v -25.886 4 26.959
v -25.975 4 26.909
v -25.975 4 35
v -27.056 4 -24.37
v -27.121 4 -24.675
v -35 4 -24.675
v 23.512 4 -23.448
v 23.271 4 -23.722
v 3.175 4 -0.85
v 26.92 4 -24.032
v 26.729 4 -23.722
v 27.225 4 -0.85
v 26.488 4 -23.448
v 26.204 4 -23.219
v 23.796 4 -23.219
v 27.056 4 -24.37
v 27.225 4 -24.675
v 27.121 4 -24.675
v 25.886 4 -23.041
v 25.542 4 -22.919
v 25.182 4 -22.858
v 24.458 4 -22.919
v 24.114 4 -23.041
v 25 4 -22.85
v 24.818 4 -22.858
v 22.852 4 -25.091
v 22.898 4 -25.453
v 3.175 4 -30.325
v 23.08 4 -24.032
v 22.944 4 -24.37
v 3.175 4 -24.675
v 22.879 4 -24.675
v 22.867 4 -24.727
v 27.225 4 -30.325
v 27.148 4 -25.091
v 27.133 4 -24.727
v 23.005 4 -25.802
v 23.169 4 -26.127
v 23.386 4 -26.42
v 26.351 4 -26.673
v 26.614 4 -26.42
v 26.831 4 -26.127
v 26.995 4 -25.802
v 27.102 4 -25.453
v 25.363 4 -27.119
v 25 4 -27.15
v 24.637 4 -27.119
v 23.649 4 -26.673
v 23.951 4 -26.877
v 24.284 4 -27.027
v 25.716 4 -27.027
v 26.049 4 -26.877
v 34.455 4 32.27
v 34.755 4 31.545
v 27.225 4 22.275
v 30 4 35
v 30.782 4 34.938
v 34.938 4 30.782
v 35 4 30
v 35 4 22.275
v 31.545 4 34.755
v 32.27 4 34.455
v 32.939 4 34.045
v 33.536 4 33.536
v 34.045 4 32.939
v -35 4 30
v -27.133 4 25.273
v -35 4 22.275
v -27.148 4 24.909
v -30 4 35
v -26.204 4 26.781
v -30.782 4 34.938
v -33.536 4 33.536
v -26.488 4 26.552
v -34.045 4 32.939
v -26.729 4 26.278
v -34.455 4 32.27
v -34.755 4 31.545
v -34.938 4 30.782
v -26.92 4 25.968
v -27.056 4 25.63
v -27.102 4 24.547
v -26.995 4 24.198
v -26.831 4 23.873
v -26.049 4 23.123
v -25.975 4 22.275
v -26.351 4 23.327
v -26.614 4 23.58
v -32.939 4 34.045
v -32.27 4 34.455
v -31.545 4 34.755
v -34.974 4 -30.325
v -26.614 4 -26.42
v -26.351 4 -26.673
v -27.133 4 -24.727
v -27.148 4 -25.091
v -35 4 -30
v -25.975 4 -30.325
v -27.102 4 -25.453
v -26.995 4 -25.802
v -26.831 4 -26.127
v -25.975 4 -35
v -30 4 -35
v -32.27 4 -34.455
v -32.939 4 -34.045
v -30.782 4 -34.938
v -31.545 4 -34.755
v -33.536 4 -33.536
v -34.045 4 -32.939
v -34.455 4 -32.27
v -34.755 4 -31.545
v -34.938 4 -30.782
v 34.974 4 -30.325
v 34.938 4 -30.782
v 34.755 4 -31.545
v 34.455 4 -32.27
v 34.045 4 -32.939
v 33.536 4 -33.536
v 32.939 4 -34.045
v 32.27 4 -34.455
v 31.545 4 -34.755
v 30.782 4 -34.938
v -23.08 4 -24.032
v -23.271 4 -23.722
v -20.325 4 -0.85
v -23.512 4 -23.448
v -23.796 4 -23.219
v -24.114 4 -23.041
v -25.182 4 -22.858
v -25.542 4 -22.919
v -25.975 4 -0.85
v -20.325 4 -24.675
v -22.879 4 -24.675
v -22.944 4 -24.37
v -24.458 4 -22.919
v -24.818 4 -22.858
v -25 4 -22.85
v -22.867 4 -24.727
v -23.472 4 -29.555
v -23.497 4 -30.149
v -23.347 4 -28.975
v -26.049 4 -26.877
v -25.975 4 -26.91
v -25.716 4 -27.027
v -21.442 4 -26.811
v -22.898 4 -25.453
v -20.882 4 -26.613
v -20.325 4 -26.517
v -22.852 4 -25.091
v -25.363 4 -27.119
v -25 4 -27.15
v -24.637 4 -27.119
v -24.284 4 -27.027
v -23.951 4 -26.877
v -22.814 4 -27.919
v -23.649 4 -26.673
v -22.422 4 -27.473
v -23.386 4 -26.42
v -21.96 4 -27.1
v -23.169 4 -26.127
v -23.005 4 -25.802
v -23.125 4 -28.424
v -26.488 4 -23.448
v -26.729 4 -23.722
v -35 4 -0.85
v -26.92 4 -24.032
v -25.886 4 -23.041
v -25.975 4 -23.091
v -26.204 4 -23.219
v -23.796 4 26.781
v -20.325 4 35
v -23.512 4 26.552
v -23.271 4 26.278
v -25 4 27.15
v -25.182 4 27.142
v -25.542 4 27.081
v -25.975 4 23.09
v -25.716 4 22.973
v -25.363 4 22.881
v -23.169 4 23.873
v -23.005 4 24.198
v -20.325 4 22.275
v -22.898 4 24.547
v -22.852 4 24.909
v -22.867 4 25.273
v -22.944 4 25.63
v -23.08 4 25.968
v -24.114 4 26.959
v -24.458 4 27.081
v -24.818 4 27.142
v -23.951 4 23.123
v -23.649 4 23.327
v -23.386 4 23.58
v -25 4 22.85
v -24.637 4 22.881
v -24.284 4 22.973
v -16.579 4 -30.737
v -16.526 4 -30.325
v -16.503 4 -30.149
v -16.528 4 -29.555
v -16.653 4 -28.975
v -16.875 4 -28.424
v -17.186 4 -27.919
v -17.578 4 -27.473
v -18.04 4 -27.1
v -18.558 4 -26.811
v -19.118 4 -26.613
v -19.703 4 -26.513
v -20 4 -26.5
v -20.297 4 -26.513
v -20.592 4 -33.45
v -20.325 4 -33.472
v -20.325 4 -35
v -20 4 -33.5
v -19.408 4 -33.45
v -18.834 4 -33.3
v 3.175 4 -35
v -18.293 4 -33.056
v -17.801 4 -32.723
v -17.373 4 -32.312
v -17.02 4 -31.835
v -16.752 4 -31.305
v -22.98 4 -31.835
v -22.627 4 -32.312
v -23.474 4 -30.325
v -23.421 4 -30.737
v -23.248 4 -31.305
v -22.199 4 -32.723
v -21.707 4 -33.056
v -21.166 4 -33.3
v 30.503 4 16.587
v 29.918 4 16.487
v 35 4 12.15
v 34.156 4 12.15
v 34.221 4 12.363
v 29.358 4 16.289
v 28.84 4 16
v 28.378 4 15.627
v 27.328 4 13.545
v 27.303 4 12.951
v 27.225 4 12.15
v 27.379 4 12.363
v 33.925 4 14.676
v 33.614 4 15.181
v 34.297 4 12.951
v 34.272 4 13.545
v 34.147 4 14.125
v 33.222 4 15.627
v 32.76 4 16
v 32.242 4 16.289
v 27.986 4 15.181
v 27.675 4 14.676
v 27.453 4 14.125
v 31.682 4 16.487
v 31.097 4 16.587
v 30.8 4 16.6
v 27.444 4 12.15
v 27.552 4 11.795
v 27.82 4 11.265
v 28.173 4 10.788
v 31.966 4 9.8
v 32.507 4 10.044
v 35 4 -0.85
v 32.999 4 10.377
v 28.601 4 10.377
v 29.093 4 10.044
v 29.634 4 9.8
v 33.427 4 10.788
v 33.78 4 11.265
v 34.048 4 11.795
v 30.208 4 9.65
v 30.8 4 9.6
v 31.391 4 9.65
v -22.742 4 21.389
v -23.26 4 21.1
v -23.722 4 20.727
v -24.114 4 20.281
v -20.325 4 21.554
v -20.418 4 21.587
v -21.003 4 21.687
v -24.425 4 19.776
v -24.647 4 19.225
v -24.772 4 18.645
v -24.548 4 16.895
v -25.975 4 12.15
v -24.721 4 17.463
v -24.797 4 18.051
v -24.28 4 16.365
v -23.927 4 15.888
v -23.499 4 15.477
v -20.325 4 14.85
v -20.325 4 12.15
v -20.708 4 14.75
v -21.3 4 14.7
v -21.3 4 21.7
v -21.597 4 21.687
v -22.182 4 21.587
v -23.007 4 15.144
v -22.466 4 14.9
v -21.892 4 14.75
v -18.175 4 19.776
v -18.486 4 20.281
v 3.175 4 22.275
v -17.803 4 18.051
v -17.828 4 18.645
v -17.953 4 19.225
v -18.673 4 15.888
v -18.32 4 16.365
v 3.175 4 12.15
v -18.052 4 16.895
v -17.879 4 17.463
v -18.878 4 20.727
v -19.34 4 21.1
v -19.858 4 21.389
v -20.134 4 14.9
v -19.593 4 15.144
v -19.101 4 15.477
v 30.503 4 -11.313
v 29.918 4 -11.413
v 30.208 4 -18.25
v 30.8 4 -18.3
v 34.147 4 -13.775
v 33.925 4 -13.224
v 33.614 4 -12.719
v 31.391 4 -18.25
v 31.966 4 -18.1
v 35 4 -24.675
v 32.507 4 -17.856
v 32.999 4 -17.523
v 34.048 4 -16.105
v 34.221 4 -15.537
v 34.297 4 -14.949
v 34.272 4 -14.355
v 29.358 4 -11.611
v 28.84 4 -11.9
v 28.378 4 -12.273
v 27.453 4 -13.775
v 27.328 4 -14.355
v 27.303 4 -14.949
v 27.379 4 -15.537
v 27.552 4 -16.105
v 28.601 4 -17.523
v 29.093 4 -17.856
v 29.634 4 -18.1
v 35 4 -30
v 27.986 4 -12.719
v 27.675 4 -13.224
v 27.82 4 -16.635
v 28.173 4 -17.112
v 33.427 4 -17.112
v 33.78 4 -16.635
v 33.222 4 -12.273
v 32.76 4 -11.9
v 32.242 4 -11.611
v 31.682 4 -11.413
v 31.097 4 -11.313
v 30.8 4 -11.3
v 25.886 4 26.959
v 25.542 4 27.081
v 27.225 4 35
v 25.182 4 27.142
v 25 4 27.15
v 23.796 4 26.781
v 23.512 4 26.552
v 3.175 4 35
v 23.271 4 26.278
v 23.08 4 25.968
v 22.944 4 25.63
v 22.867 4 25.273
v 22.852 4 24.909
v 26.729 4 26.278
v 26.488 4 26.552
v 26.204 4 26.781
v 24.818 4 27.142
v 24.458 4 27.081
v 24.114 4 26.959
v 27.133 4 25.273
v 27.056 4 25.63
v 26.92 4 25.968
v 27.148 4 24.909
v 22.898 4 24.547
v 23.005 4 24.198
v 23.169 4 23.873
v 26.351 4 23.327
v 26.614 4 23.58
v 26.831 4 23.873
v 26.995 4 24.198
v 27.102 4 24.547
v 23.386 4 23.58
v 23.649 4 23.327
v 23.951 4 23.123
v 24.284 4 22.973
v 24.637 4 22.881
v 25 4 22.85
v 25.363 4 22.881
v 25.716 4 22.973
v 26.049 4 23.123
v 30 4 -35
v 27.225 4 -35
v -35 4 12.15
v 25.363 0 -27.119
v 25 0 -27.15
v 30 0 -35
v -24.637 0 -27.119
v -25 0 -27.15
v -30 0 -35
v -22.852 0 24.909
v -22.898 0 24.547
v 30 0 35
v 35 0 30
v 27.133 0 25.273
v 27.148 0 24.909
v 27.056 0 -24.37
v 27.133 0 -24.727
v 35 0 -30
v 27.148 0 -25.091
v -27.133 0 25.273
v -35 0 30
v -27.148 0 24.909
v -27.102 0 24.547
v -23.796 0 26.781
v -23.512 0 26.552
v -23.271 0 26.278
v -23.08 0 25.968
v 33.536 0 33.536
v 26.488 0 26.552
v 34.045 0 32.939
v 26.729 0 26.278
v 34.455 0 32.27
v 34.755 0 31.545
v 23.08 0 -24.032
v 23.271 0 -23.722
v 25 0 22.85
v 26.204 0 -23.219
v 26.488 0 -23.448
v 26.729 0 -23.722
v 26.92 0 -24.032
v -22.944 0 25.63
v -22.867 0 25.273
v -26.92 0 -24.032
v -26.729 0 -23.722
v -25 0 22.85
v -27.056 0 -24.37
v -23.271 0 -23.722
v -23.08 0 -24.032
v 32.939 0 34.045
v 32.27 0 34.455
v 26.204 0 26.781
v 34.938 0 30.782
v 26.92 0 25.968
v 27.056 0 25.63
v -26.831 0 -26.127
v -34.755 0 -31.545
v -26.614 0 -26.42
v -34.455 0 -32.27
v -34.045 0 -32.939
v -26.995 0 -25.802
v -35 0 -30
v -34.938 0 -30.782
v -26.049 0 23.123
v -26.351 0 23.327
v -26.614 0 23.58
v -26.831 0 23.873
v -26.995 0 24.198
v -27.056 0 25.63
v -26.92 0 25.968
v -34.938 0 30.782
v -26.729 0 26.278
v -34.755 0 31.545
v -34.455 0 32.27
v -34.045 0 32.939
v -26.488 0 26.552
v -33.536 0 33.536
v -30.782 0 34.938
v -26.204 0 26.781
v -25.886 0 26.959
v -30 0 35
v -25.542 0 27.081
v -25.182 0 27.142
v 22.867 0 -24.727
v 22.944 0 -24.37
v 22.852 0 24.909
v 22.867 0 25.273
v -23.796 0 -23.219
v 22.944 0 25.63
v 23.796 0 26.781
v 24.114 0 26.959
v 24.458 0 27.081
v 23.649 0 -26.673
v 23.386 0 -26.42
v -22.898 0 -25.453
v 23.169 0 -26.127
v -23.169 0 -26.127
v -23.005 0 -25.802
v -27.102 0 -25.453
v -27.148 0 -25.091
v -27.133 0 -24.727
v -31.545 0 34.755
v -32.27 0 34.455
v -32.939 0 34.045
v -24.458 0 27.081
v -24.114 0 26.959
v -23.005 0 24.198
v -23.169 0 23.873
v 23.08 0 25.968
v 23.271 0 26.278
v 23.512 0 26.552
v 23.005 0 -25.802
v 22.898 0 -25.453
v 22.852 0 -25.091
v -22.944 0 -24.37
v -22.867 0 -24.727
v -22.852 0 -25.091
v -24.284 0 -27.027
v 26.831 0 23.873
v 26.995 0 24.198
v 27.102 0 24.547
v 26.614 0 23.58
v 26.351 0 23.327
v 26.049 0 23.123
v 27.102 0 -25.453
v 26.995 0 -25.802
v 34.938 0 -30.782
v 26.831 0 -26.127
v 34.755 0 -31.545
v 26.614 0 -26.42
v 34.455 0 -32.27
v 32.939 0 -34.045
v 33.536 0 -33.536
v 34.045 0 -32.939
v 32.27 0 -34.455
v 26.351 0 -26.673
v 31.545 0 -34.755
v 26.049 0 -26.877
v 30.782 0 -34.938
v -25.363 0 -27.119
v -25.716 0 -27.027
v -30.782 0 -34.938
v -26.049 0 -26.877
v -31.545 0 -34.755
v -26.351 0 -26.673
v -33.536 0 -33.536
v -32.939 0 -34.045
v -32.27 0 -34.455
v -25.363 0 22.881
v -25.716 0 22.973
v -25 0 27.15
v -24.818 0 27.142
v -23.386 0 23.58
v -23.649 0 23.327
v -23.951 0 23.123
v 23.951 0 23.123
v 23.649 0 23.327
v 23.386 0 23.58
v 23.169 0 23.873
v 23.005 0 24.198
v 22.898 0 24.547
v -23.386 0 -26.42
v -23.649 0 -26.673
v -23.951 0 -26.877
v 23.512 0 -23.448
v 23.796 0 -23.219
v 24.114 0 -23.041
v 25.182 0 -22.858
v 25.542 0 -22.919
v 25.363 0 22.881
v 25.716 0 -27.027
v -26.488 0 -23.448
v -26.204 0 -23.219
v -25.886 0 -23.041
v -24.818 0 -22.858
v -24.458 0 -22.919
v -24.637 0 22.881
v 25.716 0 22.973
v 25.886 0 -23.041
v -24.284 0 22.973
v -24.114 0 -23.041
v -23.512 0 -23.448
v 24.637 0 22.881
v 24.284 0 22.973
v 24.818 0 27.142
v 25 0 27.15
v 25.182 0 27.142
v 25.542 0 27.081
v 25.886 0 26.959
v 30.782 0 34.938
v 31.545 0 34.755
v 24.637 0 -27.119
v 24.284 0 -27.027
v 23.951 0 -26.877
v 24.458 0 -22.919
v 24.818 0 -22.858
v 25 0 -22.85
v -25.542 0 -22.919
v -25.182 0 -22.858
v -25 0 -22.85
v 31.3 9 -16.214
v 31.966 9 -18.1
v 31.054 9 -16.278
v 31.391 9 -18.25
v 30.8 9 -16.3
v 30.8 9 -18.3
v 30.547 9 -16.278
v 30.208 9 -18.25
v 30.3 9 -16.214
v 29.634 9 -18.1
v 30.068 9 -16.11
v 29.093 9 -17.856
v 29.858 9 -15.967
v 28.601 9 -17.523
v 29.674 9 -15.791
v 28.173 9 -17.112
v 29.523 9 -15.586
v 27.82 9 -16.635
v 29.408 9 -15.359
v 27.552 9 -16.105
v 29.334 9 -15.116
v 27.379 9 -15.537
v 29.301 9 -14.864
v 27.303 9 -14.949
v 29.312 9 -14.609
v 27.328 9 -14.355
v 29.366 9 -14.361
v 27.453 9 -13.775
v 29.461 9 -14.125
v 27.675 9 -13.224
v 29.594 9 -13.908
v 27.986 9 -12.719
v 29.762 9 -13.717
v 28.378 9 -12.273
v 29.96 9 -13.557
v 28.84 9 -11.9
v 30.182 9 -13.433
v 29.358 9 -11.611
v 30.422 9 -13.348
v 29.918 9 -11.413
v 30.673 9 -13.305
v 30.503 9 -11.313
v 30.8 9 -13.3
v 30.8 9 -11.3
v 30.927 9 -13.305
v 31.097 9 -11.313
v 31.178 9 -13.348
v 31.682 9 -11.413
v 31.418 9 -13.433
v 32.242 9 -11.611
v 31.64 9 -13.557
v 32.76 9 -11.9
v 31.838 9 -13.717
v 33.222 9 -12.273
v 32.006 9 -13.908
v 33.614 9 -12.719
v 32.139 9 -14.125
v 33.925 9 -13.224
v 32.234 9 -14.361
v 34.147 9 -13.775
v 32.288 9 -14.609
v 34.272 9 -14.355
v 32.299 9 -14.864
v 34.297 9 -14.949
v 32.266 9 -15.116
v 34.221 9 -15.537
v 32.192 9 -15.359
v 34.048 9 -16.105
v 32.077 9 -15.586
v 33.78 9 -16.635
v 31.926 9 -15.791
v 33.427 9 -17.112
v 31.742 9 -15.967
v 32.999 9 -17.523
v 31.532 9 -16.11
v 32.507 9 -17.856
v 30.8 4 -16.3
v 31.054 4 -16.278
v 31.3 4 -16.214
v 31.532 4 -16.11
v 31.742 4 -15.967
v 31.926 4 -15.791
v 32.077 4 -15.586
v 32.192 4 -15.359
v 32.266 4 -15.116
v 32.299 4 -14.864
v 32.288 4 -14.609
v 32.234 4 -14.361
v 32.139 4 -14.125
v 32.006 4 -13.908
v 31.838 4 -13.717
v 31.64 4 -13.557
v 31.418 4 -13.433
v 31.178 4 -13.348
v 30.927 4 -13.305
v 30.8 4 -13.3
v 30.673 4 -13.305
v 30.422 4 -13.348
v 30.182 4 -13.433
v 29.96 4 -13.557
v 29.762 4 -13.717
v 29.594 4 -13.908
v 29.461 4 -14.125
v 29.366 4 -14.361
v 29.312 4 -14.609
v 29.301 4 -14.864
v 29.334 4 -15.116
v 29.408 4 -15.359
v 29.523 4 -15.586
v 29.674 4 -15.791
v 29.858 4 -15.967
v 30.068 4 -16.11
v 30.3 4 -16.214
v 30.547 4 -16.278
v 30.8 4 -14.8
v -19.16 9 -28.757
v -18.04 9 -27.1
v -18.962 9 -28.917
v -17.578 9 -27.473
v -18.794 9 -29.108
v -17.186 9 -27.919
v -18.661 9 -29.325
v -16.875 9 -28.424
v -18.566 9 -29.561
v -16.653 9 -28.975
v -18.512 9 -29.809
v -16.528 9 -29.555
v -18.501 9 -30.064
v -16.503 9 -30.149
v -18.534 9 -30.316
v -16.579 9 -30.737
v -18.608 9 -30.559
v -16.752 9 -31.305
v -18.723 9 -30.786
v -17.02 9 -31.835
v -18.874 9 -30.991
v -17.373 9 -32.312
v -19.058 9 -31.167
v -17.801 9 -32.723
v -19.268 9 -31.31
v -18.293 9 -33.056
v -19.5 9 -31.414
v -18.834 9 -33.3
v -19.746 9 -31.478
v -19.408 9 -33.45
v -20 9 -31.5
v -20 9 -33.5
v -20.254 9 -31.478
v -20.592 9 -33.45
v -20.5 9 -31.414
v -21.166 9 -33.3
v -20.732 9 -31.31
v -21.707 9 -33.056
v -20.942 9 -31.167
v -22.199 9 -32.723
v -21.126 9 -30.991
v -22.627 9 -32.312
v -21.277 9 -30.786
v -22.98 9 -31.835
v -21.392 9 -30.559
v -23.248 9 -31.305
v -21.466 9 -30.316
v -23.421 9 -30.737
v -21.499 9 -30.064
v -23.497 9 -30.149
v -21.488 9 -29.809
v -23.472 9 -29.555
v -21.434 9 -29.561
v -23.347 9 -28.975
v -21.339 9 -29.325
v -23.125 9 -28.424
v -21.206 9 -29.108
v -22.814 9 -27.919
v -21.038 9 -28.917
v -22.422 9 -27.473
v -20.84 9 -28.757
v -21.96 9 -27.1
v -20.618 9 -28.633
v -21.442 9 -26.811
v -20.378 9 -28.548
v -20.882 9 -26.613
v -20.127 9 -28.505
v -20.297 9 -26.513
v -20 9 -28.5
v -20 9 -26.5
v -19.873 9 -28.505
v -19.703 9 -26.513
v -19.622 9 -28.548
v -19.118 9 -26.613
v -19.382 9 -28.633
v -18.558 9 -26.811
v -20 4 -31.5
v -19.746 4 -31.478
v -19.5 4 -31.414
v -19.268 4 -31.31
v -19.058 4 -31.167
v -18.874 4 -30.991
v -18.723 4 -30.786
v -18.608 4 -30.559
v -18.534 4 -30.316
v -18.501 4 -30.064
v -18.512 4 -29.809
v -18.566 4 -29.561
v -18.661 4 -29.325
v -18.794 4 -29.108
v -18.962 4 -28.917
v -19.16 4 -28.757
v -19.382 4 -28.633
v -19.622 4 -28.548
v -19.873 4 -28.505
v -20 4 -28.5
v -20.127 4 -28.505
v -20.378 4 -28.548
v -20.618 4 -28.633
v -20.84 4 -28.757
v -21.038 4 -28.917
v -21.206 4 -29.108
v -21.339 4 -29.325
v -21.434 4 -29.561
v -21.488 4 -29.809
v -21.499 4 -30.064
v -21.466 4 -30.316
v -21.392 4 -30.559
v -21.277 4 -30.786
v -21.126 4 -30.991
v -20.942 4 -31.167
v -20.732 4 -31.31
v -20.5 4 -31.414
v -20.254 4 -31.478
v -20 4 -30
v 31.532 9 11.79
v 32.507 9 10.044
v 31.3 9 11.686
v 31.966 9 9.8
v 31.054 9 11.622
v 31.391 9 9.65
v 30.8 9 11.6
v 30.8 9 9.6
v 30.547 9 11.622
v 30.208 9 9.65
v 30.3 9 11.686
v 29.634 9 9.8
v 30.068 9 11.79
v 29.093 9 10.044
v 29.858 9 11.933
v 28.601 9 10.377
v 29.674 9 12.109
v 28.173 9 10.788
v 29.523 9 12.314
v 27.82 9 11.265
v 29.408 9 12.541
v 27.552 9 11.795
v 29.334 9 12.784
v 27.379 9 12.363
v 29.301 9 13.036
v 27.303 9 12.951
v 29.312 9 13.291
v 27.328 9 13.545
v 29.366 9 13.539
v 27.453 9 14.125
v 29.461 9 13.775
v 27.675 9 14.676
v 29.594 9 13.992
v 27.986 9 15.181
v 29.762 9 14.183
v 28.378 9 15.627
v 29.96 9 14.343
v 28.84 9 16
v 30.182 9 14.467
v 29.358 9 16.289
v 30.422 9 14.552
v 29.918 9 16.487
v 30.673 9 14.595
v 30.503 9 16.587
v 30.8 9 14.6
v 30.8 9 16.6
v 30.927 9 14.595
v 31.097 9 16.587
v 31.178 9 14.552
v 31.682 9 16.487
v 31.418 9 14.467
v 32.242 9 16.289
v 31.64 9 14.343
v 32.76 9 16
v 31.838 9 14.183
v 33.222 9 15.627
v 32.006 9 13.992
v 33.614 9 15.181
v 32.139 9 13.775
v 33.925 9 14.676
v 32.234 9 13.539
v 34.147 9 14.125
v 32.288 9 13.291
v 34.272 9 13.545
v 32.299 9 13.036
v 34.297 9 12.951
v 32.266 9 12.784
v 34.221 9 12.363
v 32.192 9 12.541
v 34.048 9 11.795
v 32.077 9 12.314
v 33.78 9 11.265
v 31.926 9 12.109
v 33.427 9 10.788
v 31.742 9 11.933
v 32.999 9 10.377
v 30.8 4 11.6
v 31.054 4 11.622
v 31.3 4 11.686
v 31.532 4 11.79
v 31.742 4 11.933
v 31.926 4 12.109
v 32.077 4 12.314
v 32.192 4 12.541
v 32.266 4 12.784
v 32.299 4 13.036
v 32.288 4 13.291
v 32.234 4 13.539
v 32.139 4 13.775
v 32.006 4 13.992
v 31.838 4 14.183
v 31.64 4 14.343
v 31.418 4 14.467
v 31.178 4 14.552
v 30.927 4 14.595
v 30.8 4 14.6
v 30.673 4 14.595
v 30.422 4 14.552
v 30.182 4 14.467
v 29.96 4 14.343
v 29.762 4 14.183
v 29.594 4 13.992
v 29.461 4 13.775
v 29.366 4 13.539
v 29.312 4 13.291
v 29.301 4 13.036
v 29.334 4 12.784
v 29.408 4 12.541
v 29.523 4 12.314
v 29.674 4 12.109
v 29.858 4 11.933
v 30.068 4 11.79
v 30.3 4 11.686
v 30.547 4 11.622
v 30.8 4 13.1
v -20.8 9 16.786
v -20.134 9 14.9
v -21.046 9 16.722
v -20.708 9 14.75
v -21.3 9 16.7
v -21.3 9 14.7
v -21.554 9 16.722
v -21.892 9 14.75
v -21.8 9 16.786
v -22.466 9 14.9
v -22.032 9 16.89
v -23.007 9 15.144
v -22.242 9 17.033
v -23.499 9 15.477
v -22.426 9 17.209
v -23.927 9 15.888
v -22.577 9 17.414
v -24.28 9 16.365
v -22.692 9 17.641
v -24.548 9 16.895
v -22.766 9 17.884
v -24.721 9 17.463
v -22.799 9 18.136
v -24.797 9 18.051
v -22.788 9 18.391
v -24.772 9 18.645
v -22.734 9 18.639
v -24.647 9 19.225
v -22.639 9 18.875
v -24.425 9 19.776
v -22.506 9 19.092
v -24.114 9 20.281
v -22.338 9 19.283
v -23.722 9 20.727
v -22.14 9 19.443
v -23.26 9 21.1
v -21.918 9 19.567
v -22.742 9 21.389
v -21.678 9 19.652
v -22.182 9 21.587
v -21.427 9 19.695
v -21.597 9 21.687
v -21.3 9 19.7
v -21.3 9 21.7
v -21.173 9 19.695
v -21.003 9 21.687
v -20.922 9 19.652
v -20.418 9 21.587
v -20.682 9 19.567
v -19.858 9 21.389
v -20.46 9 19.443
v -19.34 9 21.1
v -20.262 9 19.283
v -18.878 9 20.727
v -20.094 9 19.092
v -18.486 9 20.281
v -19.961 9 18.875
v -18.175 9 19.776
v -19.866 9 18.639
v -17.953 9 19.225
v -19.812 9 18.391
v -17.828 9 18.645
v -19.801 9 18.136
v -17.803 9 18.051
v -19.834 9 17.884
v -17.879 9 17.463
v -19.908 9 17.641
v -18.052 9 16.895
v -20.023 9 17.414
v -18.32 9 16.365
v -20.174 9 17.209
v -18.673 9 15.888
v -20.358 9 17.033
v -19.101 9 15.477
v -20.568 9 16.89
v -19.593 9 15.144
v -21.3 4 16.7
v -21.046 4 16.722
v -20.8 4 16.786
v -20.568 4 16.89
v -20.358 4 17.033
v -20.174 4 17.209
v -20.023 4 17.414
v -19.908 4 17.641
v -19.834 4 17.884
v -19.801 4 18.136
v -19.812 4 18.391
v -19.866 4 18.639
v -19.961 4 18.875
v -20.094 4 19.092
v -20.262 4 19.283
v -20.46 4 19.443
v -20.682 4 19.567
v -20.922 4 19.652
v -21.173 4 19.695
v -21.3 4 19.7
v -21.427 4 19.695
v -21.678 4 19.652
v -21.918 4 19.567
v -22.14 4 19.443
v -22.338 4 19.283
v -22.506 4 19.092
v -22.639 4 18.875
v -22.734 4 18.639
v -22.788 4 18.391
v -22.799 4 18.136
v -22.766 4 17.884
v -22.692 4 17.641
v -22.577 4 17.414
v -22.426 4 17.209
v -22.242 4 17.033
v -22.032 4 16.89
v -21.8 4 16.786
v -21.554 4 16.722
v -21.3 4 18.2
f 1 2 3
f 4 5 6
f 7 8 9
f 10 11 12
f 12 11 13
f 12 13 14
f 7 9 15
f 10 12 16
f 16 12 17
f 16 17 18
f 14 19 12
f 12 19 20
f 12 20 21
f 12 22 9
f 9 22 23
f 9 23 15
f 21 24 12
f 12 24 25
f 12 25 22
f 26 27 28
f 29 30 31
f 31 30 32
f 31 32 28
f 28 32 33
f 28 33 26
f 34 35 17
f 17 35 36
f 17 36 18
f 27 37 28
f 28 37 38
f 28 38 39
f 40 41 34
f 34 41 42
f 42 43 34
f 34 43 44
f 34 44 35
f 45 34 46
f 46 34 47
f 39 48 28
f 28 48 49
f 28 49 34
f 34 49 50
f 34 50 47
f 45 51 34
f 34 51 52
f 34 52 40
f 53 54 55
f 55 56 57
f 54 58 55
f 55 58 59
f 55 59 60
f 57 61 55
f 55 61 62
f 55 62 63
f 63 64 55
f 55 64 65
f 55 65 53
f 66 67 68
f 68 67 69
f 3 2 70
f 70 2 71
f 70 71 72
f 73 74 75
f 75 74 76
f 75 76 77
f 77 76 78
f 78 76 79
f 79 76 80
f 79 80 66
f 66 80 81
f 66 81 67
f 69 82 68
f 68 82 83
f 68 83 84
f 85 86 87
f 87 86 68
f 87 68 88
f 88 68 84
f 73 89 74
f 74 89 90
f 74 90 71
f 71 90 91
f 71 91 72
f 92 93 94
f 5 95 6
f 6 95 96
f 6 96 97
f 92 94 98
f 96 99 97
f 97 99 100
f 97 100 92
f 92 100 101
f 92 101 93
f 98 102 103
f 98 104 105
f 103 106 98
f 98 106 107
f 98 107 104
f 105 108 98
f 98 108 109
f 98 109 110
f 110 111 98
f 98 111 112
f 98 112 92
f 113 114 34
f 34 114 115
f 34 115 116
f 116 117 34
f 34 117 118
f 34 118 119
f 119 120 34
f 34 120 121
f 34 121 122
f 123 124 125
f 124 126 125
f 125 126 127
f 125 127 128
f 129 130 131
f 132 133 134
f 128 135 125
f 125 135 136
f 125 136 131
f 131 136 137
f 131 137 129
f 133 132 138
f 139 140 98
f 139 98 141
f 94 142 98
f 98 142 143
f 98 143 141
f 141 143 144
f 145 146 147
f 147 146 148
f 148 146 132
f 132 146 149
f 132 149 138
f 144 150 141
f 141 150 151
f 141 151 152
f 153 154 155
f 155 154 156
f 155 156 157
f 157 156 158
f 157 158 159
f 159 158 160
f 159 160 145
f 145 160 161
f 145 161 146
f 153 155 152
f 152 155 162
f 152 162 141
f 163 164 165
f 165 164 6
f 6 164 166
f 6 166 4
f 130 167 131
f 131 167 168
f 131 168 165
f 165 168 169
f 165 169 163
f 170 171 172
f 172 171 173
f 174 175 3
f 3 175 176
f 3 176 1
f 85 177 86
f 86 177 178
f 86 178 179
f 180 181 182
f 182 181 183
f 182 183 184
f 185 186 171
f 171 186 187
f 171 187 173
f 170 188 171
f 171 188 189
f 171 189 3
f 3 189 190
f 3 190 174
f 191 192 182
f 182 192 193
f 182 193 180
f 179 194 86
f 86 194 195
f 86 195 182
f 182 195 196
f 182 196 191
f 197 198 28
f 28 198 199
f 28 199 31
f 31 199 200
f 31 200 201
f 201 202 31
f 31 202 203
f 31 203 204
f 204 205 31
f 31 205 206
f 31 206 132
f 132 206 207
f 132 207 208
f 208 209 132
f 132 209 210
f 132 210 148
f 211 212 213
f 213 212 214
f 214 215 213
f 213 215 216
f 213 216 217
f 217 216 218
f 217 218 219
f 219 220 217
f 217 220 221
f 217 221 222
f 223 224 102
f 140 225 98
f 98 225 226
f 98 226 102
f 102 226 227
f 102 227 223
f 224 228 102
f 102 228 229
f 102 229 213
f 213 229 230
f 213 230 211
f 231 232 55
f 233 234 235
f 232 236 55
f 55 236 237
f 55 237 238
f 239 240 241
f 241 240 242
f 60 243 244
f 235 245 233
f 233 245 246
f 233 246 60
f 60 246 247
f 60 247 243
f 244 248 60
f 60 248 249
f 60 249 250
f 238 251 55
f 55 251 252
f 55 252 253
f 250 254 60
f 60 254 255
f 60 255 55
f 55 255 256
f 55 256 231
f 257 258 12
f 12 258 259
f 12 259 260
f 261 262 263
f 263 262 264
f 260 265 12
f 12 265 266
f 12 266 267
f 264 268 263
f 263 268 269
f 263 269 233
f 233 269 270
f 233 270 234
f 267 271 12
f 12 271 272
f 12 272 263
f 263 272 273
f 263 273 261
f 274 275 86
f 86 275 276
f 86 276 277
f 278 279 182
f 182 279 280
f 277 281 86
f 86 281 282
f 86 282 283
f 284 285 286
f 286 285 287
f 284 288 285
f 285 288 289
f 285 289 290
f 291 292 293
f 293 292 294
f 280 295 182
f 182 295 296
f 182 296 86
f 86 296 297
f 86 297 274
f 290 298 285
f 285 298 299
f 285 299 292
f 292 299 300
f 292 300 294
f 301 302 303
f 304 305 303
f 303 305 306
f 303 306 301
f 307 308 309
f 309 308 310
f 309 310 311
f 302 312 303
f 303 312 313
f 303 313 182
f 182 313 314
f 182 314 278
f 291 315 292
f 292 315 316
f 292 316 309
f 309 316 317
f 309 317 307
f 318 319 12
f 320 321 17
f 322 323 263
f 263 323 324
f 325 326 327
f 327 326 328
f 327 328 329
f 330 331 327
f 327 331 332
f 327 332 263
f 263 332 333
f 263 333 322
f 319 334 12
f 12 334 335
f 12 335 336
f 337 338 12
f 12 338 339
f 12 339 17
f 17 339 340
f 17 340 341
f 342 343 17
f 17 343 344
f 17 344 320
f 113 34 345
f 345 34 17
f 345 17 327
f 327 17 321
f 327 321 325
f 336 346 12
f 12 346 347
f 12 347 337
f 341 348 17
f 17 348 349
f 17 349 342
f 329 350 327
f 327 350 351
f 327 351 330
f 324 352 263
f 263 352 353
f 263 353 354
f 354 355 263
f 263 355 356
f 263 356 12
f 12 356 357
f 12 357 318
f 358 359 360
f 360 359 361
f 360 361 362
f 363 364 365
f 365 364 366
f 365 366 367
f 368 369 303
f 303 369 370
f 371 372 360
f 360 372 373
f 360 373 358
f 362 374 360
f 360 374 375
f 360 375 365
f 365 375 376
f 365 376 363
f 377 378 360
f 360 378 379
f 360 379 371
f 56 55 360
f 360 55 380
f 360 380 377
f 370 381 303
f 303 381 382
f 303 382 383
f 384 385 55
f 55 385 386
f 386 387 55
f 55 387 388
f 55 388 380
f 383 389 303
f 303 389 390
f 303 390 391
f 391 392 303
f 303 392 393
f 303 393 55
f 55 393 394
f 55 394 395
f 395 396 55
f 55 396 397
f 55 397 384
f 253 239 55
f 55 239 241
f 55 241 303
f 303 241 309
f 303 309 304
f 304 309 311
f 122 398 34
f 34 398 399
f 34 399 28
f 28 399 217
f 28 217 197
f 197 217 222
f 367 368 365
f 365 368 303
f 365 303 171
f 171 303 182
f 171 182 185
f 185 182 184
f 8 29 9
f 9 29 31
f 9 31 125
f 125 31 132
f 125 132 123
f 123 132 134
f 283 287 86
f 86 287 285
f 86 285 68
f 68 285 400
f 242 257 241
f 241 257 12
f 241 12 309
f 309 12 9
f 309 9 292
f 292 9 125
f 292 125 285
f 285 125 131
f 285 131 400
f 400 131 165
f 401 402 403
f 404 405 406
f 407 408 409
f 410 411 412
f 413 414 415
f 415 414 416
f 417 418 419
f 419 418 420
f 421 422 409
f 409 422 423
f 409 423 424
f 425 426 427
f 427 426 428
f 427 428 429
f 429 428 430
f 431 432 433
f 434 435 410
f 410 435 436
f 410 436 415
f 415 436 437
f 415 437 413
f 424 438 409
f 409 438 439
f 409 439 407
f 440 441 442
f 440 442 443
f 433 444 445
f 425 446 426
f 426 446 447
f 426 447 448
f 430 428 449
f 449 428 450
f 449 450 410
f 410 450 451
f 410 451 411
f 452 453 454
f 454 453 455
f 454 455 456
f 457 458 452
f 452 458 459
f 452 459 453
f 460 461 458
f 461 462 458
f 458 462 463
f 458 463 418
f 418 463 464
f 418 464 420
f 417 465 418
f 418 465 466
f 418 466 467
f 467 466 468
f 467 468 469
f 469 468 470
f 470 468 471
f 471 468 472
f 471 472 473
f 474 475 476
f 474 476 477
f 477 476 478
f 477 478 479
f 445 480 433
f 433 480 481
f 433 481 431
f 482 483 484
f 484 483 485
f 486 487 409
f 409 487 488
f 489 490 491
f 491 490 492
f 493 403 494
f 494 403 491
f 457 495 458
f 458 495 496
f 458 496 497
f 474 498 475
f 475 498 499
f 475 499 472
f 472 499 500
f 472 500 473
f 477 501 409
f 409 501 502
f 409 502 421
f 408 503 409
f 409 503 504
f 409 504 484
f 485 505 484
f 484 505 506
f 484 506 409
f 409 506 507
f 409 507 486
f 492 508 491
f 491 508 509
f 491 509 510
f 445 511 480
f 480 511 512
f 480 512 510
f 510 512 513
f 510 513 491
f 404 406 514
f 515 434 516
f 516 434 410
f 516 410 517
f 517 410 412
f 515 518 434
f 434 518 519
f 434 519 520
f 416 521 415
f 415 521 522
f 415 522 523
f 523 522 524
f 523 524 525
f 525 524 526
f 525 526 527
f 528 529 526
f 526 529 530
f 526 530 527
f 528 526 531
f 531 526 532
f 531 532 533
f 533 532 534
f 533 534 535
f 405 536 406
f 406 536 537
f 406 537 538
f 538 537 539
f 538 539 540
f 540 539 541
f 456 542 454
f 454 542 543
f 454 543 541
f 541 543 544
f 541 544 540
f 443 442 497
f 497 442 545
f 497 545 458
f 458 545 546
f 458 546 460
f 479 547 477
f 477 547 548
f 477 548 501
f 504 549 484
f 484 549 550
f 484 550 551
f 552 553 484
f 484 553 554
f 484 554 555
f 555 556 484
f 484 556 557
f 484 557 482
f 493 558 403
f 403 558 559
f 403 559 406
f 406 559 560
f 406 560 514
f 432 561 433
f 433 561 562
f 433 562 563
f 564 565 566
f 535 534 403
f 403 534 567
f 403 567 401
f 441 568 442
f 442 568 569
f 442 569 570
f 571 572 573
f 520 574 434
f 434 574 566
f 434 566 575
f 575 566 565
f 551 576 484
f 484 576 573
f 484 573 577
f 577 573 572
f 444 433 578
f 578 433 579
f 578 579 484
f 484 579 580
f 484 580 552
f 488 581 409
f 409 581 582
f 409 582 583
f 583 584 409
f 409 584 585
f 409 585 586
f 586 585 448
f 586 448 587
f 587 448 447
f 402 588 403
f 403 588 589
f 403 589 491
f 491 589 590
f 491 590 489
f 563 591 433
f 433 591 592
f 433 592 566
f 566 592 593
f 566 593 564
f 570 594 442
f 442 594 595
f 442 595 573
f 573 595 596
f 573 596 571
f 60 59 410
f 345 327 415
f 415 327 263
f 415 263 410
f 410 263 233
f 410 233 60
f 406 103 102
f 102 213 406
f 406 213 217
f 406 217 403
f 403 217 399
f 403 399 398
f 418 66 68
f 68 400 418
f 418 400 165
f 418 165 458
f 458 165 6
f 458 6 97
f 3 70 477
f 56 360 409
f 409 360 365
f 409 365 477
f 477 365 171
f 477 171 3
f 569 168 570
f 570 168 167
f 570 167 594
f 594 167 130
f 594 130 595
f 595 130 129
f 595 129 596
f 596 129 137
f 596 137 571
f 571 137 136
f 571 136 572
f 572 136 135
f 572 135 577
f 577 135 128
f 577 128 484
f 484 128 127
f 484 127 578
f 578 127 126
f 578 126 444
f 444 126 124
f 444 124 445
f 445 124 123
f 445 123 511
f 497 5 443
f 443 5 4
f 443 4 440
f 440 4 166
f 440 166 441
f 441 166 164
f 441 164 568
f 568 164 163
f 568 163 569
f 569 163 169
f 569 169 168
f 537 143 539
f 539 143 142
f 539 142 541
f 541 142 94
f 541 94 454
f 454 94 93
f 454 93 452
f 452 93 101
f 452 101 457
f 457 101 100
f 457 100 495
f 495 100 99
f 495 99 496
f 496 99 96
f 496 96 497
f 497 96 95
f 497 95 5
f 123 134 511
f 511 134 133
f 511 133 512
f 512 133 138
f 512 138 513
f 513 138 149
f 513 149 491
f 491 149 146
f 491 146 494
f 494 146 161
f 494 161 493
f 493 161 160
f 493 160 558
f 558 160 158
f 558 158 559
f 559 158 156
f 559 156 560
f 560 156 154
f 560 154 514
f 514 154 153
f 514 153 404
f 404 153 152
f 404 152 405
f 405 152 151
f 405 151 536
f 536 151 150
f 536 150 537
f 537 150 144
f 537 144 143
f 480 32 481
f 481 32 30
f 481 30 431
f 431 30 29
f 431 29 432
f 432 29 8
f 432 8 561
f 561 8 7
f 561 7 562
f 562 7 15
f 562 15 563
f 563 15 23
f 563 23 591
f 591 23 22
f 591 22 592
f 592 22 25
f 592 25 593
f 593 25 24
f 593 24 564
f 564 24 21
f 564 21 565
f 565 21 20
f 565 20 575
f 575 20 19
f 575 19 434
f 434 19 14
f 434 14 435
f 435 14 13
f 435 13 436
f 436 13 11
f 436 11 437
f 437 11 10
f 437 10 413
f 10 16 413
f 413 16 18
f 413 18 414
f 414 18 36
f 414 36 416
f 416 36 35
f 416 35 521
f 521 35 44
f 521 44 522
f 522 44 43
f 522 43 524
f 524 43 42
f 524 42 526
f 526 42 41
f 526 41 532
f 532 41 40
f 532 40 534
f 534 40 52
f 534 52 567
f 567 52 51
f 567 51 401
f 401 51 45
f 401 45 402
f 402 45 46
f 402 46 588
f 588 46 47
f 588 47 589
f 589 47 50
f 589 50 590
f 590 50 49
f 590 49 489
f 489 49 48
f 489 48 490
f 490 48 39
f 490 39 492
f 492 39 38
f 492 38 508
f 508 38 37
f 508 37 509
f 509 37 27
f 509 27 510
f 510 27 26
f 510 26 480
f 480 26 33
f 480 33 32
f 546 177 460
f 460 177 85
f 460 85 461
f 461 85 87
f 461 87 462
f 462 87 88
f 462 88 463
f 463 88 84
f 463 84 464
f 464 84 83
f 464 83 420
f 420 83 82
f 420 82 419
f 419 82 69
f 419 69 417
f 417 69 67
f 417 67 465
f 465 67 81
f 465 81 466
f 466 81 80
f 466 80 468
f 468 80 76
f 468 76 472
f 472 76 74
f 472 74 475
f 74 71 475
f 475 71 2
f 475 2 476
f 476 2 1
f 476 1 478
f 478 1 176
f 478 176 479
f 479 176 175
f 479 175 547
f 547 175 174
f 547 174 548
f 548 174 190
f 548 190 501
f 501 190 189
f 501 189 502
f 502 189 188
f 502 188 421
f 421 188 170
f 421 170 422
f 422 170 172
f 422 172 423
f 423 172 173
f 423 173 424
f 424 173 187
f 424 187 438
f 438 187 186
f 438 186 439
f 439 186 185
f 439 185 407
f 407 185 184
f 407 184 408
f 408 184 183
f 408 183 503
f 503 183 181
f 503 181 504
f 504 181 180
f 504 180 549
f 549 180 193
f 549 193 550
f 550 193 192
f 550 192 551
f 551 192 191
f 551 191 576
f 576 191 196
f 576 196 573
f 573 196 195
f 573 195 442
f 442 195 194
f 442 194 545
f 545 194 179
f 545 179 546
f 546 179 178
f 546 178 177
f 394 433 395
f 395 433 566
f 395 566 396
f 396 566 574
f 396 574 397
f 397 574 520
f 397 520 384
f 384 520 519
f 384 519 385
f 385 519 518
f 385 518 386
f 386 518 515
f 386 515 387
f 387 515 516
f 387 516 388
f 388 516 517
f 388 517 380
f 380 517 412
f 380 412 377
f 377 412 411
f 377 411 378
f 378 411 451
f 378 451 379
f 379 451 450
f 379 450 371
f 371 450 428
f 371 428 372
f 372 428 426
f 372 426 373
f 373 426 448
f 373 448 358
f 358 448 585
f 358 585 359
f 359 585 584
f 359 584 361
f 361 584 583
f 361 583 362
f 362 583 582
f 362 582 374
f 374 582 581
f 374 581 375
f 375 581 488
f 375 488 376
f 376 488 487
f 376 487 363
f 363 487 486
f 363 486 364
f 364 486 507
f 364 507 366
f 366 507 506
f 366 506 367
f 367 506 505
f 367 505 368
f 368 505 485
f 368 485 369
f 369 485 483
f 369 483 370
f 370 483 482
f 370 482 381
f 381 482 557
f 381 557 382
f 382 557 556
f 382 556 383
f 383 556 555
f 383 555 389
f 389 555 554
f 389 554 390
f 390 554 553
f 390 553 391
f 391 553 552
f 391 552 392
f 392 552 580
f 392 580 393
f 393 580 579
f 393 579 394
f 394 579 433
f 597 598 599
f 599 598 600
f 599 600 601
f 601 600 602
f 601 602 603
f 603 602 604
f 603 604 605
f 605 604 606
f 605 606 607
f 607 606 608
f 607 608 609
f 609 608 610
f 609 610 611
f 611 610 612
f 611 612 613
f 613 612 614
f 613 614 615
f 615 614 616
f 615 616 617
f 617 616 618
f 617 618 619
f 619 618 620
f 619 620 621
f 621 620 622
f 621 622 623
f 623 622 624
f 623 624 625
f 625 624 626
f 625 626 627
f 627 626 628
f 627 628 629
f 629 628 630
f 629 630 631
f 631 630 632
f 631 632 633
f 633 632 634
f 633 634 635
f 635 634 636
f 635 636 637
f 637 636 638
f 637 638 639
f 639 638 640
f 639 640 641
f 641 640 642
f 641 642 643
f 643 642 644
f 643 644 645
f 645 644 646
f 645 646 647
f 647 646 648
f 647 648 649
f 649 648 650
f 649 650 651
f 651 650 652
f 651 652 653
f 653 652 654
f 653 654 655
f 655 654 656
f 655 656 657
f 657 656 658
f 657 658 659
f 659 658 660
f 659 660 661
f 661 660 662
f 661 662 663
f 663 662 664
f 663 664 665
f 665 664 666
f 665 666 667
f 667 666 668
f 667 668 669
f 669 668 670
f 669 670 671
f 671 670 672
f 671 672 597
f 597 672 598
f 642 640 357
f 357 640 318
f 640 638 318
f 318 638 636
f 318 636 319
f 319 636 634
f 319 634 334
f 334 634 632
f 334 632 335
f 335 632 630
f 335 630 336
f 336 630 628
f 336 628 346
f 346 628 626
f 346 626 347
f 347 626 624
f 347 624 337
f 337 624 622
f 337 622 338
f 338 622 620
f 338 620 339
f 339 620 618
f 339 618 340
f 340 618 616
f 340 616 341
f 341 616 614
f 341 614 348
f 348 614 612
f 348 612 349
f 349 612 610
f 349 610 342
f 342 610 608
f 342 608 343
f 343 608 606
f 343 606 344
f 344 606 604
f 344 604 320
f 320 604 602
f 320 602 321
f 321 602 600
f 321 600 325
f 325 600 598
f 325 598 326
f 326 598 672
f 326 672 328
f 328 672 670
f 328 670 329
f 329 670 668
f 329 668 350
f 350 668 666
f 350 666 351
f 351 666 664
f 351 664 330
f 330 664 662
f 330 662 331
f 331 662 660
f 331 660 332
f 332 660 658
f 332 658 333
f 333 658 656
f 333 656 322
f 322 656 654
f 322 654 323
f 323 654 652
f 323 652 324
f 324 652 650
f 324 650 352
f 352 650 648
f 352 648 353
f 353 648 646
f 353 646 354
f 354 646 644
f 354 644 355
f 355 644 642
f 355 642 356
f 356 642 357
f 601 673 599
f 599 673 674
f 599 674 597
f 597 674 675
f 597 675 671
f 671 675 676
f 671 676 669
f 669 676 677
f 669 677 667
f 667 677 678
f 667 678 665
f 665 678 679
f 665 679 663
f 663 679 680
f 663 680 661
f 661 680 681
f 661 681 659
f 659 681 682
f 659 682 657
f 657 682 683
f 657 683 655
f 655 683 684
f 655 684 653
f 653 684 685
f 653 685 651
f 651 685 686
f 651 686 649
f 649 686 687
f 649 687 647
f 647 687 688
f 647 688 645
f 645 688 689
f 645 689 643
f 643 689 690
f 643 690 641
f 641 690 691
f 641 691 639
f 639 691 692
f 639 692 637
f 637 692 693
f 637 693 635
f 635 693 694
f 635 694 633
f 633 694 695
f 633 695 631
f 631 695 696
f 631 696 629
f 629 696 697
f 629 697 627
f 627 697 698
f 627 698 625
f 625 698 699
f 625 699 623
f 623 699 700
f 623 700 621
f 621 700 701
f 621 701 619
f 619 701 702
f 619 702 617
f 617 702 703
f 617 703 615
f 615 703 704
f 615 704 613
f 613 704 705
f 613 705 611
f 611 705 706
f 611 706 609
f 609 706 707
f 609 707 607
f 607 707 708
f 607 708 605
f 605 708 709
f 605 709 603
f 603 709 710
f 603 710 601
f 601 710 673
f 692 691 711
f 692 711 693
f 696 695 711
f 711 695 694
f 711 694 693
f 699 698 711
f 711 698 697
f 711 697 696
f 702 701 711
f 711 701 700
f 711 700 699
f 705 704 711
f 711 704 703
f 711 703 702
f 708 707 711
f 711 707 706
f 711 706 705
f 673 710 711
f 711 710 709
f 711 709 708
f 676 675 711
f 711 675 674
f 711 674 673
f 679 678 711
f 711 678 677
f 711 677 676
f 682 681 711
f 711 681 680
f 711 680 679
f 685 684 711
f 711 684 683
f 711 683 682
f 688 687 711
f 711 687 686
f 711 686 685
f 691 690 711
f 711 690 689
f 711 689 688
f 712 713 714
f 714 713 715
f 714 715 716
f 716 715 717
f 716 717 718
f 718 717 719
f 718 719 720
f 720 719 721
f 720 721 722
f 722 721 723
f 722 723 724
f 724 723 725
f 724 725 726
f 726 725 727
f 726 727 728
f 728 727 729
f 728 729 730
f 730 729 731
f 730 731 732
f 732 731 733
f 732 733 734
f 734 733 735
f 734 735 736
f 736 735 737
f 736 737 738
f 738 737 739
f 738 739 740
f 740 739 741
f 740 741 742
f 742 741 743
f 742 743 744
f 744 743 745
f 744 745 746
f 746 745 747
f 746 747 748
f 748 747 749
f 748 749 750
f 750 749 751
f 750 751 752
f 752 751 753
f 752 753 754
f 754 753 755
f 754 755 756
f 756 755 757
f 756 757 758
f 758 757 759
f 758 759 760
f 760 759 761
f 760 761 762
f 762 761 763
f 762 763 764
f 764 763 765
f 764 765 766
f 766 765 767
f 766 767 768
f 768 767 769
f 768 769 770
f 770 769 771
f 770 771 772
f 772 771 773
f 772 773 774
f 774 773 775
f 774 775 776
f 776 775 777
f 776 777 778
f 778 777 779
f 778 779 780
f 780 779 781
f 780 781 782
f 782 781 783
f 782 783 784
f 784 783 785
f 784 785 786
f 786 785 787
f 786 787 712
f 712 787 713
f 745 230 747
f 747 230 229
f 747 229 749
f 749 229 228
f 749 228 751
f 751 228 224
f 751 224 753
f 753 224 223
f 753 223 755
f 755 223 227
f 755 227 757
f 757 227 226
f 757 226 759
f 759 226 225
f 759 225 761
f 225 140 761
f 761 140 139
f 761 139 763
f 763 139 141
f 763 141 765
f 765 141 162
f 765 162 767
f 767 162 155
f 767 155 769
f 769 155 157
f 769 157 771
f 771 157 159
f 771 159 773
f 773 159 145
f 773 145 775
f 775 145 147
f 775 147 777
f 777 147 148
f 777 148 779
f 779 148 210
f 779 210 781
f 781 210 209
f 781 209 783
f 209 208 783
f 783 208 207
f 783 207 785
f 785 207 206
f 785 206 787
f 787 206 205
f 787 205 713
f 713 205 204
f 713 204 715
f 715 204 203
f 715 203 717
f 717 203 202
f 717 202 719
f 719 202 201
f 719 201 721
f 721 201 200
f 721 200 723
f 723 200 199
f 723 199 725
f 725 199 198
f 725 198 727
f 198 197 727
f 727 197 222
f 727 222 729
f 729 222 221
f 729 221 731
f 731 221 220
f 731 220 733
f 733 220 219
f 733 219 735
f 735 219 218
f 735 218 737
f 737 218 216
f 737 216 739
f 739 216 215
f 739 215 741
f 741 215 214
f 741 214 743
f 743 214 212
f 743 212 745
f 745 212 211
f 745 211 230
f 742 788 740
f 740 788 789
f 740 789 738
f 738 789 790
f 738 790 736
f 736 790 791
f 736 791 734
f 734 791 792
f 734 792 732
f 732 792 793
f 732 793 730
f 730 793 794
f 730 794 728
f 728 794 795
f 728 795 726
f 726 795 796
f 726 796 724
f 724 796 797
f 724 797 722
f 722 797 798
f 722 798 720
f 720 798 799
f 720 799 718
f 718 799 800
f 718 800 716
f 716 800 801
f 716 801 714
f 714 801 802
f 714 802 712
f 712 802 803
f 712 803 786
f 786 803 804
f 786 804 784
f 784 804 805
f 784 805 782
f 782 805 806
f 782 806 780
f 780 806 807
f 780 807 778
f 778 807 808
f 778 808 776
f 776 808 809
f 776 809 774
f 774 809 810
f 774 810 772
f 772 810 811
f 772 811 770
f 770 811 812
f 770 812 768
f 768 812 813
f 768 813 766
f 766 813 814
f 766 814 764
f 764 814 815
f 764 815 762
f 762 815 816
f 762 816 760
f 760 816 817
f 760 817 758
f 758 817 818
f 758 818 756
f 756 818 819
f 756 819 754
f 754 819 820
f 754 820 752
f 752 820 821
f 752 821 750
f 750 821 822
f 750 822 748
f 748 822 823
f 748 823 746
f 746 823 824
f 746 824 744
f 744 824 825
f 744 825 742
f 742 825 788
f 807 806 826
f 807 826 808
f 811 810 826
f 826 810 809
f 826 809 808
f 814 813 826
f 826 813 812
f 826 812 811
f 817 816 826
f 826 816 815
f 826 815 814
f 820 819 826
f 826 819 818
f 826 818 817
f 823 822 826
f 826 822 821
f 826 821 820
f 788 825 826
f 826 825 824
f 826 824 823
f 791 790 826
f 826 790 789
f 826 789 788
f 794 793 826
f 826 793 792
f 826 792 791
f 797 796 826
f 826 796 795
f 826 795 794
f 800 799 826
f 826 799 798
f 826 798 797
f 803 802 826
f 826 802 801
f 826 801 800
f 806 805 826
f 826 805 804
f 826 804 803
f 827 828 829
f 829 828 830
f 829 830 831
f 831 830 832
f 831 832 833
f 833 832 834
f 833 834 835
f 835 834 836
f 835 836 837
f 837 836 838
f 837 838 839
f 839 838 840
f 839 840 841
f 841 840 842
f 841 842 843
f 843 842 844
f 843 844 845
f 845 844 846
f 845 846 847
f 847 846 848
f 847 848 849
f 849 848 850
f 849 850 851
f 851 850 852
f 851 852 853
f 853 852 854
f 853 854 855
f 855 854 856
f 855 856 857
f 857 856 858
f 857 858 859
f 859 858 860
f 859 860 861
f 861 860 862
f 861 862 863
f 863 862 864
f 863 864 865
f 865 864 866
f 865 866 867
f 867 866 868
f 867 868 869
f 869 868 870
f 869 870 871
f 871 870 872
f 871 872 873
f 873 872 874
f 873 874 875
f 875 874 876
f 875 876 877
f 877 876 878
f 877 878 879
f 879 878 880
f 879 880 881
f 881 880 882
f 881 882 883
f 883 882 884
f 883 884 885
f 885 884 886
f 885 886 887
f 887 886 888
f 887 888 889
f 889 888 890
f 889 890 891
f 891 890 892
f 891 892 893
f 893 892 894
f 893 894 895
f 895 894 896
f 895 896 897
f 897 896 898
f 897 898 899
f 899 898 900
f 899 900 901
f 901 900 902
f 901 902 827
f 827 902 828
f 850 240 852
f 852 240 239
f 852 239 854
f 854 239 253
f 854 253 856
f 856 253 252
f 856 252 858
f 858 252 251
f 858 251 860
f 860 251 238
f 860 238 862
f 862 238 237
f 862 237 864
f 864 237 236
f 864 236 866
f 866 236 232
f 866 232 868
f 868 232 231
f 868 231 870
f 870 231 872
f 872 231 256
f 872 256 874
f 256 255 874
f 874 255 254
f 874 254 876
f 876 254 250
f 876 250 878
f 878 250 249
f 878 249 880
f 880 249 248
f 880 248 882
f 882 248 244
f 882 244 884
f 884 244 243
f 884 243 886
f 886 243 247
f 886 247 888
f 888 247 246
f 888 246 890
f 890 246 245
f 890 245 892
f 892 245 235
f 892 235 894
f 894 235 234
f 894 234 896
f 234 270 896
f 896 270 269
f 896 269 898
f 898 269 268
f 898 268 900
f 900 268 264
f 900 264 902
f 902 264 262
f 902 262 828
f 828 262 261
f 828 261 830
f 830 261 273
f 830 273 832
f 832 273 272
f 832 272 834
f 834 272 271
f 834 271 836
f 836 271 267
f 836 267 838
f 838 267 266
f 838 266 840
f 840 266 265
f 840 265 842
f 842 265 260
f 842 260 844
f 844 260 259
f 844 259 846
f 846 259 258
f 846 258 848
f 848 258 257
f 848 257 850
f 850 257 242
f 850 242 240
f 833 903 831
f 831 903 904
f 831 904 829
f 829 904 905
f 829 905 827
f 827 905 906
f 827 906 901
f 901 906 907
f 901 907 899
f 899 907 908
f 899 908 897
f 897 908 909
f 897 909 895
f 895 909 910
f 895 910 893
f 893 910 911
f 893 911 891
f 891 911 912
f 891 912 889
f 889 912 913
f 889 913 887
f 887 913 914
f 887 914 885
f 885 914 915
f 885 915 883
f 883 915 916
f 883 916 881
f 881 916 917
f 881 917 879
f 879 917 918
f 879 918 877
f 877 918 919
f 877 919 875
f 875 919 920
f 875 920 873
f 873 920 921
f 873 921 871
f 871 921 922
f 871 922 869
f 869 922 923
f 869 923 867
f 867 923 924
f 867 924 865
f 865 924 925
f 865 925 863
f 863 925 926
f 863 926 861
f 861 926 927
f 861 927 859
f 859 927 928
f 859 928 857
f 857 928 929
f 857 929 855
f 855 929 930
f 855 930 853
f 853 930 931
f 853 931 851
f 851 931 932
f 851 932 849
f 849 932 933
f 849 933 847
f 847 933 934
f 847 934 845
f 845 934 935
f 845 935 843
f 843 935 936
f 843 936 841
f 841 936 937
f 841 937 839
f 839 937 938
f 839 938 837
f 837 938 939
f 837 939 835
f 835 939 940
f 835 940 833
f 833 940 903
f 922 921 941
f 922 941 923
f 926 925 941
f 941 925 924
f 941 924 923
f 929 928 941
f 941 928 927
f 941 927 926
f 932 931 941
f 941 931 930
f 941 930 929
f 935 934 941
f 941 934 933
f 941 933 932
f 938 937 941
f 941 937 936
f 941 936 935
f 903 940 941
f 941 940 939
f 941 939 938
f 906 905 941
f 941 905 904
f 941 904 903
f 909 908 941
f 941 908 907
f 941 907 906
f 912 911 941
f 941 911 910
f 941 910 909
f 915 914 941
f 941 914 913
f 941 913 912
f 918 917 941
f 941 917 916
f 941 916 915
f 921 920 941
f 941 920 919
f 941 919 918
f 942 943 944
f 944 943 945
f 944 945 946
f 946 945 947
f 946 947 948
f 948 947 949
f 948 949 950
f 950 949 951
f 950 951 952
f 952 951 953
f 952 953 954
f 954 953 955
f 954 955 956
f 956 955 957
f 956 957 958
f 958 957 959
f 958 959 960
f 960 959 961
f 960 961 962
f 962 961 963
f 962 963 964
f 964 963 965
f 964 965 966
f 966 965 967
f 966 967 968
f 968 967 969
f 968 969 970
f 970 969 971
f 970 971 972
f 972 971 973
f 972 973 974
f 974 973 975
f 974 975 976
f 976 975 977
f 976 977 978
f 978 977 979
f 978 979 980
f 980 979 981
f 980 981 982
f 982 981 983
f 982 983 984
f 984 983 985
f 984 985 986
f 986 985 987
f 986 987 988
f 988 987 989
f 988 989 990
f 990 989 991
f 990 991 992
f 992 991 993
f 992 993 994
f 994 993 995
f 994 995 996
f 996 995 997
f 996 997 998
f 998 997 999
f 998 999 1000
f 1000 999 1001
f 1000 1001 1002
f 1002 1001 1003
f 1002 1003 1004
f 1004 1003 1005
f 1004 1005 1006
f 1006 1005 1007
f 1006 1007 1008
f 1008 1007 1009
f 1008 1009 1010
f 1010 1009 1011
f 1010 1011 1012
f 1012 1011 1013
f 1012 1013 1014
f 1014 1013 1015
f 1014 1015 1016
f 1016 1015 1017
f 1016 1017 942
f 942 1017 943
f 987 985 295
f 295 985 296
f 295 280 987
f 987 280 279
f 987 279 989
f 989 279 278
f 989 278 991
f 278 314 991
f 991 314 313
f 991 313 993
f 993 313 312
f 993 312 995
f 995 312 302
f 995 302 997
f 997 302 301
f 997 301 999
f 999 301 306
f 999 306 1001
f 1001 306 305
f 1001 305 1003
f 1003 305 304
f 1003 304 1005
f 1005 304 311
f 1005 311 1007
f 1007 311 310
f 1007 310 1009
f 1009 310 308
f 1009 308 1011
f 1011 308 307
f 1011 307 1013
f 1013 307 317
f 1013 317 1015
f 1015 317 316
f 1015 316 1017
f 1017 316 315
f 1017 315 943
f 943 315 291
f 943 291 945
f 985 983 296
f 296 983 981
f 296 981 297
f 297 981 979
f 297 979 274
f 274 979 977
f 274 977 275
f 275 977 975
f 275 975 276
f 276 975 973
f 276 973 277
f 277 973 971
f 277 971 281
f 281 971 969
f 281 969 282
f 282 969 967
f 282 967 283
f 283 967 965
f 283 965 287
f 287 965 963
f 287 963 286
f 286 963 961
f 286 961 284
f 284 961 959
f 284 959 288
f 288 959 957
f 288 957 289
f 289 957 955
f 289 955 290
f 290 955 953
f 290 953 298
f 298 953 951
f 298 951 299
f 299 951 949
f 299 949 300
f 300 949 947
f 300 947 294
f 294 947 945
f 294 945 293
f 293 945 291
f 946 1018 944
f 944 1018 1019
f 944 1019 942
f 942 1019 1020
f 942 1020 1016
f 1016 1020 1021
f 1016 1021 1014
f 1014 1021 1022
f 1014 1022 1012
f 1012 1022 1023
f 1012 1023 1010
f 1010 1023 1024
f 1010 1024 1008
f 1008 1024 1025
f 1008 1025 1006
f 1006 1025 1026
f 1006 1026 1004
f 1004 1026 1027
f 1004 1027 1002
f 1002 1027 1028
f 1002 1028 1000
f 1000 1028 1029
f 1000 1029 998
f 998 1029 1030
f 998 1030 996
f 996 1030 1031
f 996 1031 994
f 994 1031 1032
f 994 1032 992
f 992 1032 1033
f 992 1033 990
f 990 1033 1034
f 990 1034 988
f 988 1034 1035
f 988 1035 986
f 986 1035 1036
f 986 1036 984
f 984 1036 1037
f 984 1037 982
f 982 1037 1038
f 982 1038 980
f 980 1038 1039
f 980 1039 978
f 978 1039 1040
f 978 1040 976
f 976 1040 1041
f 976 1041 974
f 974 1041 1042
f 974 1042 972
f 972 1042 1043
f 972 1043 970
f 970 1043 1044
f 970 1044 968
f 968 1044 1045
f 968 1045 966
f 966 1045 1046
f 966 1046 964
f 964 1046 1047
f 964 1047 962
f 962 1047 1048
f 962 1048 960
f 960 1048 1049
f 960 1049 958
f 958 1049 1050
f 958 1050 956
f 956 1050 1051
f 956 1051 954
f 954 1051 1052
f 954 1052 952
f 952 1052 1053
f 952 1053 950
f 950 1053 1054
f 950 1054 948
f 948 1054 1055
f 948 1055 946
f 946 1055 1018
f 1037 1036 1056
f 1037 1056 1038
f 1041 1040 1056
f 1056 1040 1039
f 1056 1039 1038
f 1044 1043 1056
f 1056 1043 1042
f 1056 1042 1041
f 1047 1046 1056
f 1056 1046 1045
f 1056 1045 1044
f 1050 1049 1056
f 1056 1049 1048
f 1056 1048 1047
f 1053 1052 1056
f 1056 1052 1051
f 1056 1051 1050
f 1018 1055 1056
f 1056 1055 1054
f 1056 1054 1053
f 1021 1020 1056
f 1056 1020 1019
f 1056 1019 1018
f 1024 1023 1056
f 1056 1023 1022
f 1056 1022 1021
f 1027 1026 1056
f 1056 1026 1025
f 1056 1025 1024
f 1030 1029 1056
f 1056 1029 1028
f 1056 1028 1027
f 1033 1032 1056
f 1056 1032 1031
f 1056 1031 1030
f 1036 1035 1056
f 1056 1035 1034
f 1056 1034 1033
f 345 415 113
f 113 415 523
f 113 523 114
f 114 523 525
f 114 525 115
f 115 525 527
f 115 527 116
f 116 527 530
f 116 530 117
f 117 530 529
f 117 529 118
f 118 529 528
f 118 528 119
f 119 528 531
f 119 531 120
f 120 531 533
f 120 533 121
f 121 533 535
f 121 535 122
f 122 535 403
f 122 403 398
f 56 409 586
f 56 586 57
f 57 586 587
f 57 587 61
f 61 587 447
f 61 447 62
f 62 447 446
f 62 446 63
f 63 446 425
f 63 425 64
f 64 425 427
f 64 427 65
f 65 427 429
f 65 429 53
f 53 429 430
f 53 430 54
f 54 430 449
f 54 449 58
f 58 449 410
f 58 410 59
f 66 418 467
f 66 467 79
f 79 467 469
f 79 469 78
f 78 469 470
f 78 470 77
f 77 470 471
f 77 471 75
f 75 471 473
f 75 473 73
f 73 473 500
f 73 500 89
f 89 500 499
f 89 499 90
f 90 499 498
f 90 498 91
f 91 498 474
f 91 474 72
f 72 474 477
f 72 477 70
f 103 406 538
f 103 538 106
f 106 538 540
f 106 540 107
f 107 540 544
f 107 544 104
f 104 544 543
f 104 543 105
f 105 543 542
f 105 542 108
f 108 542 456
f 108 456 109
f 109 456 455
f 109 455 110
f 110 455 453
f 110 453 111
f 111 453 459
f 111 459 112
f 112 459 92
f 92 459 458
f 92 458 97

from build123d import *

# Parameters (mm, degrees)
SKETCH_2_W      = 70
SKETCH_2_H      = 70
SKETCH_2_R      = 2.15
EXTRUDE_1_DEPTH = 4
SKETCH_3_R      = 3.5
SKETCH_3_R_2    = 1.5
EXTRUDE_2_DEPTH = 5
FILLET_1_R      = 5


with BuildPart() as part:
    # 草圖2 → 填料-伸長1 (new body)
    with BuildSketch(Plane(origin=(0, 0, 0), x_dir=(1, 0, 0), z_dir=(0, 1, 0))):
        Rectangle(SKETCH_2_W, SKETCH_2_H)
        with Locations(Location((-25, 25, 0), (0, 0, 270))):
            Circle(SKETCH_2_R, mode=Mode.SUBTRACT)
        with Locations(Location((25, 25, 0), (0, 0, 270))):
            Circle(SKETCH_2_R, mode=Mode.SUBTRACT)
        with Locations(Location((-25, -25, 0), (0, 0, 270))):
            Circle(SKETCH_2_R, mode=Mode.SUBTRACT)
        with Locations(Location((25, -25, 0), (0, 0, 270))):
            Circle(SKETCH_2_R, mode=Mode.SUBTRACT)
    extrude(amount=EXTRUDE_1_DEPTH)

    # 草圖3 → 填料-伸長2 (add)
    # profile 1 of 4: a face of its own
    with BuildSketch(Plane(origin=(0, 4, 0), x_dir=(1, 0, 0), z_dir=(0, 1, 0))):
        with Locations(Location((-20, 30, 0), (0, 0, 270))):
            Circle(SKETCH_3_R)
        with Locations(Location((-20, 30, 0), (0, 0, 270))):
            Circle(SKETCH_3_R_2, mode=Mode.SUBTRACT)
    # profile 2 of 4: a face of its own
    with BuildSketch(Plane(origin=(0, 4, 0), x_dir=(1, 0, 0), z_dir=(0, 1, 0))):
        with Locations(Location((30.8, 14.8, 0), (0, 0, 270))):
            Circle(SKETCH_3_R)
        with Locations(Location((30.8, 14.8, 0), (0, 0, 270))):
            Circle(SKETCH_3_R_2, mode=Mode.SUBTRACT)
    # profile 3 of 4: a face of its own
    with BuildSketch(Plane(origin=(0, 4, 0), x_dir=(1, 0, 0), z_dir=(0, 1, 0))):
        with Locations(Location((30.8, -13.1, 0), (0, 0, 270))):
            Circle(SKETCH_3_R)
        with Locations(Location((30.8, -13.1, 0), (0, 0, 270))):
            Circle(SKETCH_3_R_2, mode=Mode.SUBTRACT)
    # profile 4 of 4: a face of its own
    with BuildSketch(Plane(origin=(0, 4, 0), x_dir=(1, 0, 0), z_dir=(0, 1, 0))):
        with Locations(Location((-21.3, -18.2, 0), (0, 0, 270))):
            Circle(SKETCH_3_R)
        with Locations(Location((-21.3, -18.2, 0), (0, 0, 270))):
            Circle(SKETCH_3_R_2, mode=Mode.SUBTRACT)
    extrude(amount=EXTRUDE_2_DEPTH)

    # 圓角1
    fillet_1_edges = [part.edges().sort_by_distance(p)[0] for p in [
        (35, 2, 35),
        (-35, 2, 35),
        (-35, 2, -35),
        (35, 2, -35),
    ]]
    fillet(fillet_1_edges, radius=FILLET_1_R)


solid = part.part
